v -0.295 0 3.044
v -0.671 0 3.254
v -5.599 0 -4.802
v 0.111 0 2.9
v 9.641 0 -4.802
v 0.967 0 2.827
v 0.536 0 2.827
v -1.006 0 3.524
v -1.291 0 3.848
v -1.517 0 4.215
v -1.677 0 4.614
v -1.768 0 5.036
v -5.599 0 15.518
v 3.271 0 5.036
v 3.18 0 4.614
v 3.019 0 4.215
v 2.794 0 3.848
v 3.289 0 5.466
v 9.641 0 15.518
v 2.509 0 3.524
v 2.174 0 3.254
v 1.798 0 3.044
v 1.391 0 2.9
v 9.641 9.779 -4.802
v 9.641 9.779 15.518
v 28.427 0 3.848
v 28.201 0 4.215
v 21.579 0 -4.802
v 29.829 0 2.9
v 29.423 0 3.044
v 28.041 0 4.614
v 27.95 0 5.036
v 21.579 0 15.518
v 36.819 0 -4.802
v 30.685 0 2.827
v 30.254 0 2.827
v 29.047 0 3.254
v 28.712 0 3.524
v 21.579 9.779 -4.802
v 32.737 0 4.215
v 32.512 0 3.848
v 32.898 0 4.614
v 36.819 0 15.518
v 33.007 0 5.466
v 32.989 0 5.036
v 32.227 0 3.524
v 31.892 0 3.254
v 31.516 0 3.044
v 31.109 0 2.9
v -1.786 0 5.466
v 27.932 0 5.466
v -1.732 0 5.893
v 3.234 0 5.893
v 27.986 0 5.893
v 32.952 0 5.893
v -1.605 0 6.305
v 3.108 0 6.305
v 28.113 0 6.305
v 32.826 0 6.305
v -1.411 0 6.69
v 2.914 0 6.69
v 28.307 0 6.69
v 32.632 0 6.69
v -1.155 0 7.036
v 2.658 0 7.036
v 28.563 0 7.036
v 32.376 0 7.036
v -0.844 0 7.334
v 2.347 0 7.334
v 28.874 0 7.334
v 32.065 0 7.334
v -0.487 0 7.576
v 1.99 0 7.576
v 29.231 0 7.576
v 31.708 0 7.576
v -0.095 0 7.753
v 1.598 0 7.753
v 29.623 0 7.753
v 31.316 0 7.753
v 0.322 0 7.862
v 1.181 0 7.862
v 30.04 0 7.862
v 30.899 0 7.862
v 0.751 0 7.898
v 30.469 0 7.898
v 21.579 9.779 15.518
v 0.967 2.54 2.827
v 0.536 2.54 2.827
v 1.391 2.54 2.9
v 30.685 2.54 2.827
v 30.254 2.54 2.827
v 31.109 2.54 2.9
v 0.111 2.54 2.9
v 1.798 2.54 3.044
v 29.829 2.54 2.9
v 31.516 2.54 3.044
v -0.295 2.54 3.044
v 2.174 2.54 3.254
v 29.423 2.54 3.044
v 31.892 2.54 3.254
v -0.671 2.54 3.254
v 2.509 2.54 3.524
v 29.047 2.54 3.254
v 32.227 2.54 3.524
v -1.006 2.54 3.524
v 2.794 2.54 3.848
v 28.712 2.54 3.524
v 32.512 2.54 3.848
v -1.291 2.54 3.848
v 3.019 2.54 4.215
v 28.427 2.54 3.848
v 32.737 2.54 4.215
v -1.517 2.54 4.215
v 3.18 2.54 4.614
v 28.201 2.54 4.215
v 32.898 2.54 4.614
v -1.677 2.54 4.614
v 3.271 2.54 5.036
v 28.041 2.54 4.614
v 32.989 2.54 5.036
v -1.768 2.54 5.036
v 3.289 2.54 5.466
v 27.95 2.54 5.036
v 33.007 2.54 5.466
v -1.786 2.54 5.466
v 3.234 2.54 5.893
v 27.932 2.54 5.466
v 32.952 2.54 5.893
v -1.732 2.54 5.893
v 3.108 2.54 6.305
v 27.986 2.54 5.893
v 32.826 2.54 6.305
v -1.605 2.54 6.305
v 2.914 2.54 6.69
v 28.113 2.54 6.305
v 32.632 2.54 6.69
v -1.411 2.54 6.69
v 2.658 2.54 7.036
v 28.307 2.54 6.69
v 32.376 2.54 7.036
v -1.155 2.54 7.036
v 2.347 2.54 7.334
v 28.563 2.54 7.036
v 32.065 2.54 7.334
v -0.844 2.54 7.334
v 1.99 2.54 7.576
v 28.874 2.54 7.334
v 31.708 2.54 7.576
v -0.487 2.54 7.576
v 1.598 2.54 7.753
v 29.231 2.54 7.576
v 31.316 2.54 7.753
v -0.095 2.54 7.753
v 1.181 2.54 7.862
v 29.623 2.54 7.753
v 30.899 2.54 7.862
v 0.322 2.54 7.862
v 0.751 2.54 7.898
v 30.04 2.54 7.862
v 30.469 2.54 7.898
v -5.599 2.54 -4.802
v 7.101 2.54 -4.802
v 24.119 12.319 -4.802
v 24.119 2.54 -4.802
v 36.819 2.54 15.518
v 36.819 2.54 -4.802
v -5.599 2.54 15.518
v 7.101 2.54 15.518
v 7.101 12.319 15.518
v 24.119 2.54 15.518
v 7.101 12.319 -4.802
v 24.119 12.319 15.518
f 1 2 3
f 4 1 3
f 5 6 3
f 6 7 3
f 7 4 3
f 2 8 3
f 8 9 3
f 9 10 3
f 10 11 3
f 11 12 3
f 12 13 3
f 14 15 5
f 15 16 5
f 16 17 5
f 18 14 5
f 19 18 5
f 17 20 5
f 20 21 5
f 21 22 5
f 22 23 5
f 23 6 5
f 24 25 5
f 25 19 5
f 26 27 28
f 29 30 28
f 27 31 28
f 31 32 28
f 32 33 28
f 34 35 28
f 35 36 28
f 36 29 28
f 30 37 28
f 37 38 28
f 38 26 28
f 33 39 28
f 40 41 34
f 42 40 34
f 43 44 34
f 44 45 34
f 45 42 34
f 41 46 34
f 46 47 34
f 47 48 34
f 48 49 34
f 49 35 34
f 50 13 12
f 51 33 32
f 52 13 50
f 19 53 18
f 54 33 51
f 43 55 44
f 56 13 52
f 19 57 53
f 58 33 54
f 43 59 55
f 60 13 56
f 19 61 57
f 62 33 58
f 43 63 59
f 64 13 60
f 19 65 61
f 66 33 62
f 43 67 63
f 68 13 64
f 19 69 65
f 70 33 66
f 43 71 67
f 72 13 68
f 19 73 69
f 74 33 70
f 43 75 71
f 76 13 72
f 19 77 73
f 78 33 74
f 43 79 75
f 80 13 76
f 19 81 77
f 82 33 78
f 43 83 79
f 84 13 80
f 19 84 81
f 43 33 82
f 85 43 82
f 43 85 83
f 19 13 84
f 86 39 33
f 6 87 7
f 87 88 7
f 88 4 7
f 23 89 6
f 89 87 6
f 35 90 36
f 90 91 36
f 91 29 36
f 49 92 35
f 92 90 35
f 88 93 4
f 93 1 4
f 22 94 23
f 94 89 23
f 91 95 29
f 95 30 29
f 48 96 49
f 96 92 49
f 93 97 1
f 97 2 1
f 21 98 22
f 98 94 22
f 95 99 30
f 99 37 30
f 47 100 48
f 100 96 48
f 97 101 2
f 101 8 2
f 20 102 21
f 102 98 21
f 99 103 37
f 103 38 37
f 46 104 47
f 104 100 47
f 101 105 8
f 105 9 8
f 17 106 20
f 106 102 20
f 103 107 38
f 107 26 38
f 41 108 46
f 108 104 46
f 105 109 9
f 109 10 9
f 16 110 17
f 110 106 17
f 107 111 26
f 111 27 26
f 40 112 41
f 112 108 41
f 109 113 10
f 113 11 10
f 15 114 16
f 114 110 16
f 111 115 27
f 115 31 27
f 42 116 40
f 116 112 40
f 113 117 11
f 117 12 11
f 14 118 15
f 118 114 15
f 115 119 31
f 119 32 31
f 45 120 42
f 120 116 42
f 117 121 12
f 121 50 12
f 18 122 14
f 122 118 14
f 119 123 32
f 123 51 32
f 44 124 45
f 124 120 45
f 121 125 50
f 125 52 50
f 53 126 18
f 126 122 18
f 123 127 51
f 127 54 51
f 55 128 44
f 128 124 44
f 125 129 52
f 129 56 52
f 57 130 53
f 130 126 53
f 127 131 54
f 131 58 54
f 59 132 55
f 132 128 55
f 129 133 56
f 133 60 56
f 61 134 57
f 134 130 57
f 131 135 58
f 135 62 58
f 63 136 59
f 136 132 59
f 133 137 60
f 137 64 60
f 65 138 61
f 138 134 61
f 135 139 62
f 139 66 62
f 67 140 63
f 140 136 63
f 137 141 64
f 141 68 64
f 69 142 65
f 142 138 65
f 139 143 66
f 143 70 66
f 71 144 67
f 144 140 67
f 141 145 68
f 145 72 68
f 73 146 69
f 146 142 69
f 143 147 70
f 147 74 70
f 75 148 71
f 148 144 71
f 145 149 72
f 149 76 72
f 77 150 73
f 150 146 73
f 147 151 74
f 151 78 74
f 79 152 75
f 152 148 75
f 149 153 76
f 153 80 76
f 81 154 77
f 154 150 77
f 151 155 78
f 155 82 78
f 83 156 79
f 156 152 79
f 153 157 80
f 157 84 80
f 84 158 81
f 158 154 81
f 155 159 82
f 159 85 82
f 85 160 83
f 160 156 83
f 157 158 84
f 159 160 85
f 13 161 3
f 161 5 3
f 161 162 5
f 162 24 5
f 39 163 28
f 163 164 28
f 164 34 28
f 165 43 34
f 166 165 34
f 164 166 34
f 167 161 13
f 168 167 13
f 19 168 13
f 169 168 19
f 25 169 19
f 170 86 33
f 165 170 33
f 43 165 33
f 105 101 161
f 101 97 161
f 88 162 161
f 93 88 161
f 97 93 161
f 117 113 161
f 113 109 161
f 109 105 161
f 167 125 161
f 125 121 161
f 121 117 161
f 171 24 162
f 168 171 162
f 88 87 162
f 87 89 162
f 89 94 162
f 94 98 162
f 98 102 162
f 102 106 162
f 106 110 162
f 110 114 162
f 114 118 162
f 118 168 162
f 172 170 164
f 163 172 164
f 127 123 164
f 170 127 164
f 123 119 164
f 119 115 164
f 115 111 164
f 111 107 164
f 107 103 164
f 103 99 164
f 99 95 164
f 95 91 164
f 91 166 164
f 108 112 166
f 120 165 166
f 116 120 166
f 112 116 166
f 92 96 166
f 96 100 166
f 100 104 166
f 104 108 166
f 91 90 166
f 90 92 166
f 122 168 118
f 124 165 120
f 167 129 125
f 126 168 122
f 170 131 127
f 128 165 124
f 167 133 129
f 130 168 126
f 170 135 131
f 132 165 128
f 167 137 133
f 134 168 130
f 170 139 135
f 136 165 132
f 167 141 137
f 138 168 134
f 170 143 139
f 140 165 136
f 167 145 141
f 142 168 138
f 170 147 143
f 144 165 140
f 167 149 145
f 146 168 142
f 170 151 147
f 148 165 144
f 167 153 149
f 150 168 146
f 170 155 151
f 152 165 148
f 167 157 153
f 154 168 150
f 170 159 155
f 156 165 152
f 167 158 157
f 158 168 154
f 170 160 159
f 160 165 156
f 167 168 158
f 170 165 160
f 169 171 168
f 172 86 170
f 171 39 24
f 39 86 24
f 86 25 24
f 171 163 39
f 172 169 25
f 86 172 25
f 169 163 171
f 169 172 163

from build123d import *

# Parameters (mm, degrees)
SKETCH2_W           = 42.418
SKETCH2_H           = 20.32
BOSS_EXTRUDE1_DEPTH = 12.319
SKETCH5_W           = 12.7
SKETCH5_H           = 20.32
CUT_EXTRUDE1_DEPTH  = 9.779
SKETCH6_W           = 12.7
SKETCH6_H           = 20.32
CUT_EXTRUDE2_DEPTH  = 9.779
SKETCH7_W           = 11.938
SKETCH7_H           = 20.32
CUT_EXTRUDE3_DEPTH  = 9.779
SKETCH8_R           = 2.54
CUT_EXTRUDE4_DEPTH  = 2.54
SKETCH9_R           = 2.54
CUT_EXTRUDE5_DEPTH  = 2.54


with BuildPart() as part:
    # Sketch2 → Boss-Extrude1 (new body)
    with BuildSketch(Plane(origin=(0, 0, 0), x_dir=(1, 0, 0), z_dir=(0, 1, 0))):
        with Locations((15.610403741, -5.358242937)):
            Rectangle(SKETCH2_W, SKETCH2_H)
    extrude(amount=BOSS_EXTRUDE1_DEPTH)

    # Sketch5 → Cut-Extrude1 (cut)
    with BuildSketch(Plane(origin=(0, 12.319, 0), x_dir=(1, 0, 0), z_dir=(0, 1, 0))):
        with Locations((0.751403741, -5.358242937)):
            Rectangle(SKETCH5_W, SKETCH5_H)
    extrude(amount=-CUT_EXTRUDE1_DEPTH, mode=Mode.SUBTRACT)

    # Sketch6 → Cut-Extrude2 (cut)
    with BuildSketch(Plane(origin=(0, 12.319, 0), x_dir=(1, 0, 0), z_dir=(0, 1, 0))):
        with Locations((30.469403741, -5.358242937)):
            Rectangle(SKETCH6_W, SKETCH6_H)
    extrude(amount=-CUT_EXTRUDE2_DEPTH, mode=Mode.SUBTRACT)

    # Sketch7 → Cut-Extrude3 (cut)
    with BuildSketch(Plane(origin=(0, 0, 0), x_dir=(-1, 0, 0), z_dir=(0, -1, 0))):
        with Locations((-15.610403741, -5.358242937)):
            Rectangle(SKETCH7_W, SKETCH7_H)
    extrude(amount=-CUT_EXTRUDE3_DEPTH, mode=Mode.SUBTRACT)

    # Sketch8 → Cut-Extrude4 (cut)
    with BuildSketch(Plane(origin=(0, 2.54, 0), x_dir=(1, 0, 0), z_dir=(0, 1, 0))):
        with Locations(Location((0.751403741, -5.358242937, 0), (0, 0, 270))):
            Circle(SKETCH8_R)
    extrude(amount=-CUT_EXTRUDE4_DEPTH, mode=Mode.SUBTRACT)

    # Sketch9 → Cut-Extrude5 (cut)
    with BuildSketch(Plane(origin=(0, 2.54, 0), x_dir=(1, 0, 0), z_dir=(0, 1, 0))):
        with Locations(Location((30.469403741, -5.358242937, 0), (0, 0, 270))):
            Circle(SKETCH9_R)
    extrude(amount=-CUT_EXTRUDE5_DEPTH, mode=Mode.SUBTRACT)


solid = part.part
